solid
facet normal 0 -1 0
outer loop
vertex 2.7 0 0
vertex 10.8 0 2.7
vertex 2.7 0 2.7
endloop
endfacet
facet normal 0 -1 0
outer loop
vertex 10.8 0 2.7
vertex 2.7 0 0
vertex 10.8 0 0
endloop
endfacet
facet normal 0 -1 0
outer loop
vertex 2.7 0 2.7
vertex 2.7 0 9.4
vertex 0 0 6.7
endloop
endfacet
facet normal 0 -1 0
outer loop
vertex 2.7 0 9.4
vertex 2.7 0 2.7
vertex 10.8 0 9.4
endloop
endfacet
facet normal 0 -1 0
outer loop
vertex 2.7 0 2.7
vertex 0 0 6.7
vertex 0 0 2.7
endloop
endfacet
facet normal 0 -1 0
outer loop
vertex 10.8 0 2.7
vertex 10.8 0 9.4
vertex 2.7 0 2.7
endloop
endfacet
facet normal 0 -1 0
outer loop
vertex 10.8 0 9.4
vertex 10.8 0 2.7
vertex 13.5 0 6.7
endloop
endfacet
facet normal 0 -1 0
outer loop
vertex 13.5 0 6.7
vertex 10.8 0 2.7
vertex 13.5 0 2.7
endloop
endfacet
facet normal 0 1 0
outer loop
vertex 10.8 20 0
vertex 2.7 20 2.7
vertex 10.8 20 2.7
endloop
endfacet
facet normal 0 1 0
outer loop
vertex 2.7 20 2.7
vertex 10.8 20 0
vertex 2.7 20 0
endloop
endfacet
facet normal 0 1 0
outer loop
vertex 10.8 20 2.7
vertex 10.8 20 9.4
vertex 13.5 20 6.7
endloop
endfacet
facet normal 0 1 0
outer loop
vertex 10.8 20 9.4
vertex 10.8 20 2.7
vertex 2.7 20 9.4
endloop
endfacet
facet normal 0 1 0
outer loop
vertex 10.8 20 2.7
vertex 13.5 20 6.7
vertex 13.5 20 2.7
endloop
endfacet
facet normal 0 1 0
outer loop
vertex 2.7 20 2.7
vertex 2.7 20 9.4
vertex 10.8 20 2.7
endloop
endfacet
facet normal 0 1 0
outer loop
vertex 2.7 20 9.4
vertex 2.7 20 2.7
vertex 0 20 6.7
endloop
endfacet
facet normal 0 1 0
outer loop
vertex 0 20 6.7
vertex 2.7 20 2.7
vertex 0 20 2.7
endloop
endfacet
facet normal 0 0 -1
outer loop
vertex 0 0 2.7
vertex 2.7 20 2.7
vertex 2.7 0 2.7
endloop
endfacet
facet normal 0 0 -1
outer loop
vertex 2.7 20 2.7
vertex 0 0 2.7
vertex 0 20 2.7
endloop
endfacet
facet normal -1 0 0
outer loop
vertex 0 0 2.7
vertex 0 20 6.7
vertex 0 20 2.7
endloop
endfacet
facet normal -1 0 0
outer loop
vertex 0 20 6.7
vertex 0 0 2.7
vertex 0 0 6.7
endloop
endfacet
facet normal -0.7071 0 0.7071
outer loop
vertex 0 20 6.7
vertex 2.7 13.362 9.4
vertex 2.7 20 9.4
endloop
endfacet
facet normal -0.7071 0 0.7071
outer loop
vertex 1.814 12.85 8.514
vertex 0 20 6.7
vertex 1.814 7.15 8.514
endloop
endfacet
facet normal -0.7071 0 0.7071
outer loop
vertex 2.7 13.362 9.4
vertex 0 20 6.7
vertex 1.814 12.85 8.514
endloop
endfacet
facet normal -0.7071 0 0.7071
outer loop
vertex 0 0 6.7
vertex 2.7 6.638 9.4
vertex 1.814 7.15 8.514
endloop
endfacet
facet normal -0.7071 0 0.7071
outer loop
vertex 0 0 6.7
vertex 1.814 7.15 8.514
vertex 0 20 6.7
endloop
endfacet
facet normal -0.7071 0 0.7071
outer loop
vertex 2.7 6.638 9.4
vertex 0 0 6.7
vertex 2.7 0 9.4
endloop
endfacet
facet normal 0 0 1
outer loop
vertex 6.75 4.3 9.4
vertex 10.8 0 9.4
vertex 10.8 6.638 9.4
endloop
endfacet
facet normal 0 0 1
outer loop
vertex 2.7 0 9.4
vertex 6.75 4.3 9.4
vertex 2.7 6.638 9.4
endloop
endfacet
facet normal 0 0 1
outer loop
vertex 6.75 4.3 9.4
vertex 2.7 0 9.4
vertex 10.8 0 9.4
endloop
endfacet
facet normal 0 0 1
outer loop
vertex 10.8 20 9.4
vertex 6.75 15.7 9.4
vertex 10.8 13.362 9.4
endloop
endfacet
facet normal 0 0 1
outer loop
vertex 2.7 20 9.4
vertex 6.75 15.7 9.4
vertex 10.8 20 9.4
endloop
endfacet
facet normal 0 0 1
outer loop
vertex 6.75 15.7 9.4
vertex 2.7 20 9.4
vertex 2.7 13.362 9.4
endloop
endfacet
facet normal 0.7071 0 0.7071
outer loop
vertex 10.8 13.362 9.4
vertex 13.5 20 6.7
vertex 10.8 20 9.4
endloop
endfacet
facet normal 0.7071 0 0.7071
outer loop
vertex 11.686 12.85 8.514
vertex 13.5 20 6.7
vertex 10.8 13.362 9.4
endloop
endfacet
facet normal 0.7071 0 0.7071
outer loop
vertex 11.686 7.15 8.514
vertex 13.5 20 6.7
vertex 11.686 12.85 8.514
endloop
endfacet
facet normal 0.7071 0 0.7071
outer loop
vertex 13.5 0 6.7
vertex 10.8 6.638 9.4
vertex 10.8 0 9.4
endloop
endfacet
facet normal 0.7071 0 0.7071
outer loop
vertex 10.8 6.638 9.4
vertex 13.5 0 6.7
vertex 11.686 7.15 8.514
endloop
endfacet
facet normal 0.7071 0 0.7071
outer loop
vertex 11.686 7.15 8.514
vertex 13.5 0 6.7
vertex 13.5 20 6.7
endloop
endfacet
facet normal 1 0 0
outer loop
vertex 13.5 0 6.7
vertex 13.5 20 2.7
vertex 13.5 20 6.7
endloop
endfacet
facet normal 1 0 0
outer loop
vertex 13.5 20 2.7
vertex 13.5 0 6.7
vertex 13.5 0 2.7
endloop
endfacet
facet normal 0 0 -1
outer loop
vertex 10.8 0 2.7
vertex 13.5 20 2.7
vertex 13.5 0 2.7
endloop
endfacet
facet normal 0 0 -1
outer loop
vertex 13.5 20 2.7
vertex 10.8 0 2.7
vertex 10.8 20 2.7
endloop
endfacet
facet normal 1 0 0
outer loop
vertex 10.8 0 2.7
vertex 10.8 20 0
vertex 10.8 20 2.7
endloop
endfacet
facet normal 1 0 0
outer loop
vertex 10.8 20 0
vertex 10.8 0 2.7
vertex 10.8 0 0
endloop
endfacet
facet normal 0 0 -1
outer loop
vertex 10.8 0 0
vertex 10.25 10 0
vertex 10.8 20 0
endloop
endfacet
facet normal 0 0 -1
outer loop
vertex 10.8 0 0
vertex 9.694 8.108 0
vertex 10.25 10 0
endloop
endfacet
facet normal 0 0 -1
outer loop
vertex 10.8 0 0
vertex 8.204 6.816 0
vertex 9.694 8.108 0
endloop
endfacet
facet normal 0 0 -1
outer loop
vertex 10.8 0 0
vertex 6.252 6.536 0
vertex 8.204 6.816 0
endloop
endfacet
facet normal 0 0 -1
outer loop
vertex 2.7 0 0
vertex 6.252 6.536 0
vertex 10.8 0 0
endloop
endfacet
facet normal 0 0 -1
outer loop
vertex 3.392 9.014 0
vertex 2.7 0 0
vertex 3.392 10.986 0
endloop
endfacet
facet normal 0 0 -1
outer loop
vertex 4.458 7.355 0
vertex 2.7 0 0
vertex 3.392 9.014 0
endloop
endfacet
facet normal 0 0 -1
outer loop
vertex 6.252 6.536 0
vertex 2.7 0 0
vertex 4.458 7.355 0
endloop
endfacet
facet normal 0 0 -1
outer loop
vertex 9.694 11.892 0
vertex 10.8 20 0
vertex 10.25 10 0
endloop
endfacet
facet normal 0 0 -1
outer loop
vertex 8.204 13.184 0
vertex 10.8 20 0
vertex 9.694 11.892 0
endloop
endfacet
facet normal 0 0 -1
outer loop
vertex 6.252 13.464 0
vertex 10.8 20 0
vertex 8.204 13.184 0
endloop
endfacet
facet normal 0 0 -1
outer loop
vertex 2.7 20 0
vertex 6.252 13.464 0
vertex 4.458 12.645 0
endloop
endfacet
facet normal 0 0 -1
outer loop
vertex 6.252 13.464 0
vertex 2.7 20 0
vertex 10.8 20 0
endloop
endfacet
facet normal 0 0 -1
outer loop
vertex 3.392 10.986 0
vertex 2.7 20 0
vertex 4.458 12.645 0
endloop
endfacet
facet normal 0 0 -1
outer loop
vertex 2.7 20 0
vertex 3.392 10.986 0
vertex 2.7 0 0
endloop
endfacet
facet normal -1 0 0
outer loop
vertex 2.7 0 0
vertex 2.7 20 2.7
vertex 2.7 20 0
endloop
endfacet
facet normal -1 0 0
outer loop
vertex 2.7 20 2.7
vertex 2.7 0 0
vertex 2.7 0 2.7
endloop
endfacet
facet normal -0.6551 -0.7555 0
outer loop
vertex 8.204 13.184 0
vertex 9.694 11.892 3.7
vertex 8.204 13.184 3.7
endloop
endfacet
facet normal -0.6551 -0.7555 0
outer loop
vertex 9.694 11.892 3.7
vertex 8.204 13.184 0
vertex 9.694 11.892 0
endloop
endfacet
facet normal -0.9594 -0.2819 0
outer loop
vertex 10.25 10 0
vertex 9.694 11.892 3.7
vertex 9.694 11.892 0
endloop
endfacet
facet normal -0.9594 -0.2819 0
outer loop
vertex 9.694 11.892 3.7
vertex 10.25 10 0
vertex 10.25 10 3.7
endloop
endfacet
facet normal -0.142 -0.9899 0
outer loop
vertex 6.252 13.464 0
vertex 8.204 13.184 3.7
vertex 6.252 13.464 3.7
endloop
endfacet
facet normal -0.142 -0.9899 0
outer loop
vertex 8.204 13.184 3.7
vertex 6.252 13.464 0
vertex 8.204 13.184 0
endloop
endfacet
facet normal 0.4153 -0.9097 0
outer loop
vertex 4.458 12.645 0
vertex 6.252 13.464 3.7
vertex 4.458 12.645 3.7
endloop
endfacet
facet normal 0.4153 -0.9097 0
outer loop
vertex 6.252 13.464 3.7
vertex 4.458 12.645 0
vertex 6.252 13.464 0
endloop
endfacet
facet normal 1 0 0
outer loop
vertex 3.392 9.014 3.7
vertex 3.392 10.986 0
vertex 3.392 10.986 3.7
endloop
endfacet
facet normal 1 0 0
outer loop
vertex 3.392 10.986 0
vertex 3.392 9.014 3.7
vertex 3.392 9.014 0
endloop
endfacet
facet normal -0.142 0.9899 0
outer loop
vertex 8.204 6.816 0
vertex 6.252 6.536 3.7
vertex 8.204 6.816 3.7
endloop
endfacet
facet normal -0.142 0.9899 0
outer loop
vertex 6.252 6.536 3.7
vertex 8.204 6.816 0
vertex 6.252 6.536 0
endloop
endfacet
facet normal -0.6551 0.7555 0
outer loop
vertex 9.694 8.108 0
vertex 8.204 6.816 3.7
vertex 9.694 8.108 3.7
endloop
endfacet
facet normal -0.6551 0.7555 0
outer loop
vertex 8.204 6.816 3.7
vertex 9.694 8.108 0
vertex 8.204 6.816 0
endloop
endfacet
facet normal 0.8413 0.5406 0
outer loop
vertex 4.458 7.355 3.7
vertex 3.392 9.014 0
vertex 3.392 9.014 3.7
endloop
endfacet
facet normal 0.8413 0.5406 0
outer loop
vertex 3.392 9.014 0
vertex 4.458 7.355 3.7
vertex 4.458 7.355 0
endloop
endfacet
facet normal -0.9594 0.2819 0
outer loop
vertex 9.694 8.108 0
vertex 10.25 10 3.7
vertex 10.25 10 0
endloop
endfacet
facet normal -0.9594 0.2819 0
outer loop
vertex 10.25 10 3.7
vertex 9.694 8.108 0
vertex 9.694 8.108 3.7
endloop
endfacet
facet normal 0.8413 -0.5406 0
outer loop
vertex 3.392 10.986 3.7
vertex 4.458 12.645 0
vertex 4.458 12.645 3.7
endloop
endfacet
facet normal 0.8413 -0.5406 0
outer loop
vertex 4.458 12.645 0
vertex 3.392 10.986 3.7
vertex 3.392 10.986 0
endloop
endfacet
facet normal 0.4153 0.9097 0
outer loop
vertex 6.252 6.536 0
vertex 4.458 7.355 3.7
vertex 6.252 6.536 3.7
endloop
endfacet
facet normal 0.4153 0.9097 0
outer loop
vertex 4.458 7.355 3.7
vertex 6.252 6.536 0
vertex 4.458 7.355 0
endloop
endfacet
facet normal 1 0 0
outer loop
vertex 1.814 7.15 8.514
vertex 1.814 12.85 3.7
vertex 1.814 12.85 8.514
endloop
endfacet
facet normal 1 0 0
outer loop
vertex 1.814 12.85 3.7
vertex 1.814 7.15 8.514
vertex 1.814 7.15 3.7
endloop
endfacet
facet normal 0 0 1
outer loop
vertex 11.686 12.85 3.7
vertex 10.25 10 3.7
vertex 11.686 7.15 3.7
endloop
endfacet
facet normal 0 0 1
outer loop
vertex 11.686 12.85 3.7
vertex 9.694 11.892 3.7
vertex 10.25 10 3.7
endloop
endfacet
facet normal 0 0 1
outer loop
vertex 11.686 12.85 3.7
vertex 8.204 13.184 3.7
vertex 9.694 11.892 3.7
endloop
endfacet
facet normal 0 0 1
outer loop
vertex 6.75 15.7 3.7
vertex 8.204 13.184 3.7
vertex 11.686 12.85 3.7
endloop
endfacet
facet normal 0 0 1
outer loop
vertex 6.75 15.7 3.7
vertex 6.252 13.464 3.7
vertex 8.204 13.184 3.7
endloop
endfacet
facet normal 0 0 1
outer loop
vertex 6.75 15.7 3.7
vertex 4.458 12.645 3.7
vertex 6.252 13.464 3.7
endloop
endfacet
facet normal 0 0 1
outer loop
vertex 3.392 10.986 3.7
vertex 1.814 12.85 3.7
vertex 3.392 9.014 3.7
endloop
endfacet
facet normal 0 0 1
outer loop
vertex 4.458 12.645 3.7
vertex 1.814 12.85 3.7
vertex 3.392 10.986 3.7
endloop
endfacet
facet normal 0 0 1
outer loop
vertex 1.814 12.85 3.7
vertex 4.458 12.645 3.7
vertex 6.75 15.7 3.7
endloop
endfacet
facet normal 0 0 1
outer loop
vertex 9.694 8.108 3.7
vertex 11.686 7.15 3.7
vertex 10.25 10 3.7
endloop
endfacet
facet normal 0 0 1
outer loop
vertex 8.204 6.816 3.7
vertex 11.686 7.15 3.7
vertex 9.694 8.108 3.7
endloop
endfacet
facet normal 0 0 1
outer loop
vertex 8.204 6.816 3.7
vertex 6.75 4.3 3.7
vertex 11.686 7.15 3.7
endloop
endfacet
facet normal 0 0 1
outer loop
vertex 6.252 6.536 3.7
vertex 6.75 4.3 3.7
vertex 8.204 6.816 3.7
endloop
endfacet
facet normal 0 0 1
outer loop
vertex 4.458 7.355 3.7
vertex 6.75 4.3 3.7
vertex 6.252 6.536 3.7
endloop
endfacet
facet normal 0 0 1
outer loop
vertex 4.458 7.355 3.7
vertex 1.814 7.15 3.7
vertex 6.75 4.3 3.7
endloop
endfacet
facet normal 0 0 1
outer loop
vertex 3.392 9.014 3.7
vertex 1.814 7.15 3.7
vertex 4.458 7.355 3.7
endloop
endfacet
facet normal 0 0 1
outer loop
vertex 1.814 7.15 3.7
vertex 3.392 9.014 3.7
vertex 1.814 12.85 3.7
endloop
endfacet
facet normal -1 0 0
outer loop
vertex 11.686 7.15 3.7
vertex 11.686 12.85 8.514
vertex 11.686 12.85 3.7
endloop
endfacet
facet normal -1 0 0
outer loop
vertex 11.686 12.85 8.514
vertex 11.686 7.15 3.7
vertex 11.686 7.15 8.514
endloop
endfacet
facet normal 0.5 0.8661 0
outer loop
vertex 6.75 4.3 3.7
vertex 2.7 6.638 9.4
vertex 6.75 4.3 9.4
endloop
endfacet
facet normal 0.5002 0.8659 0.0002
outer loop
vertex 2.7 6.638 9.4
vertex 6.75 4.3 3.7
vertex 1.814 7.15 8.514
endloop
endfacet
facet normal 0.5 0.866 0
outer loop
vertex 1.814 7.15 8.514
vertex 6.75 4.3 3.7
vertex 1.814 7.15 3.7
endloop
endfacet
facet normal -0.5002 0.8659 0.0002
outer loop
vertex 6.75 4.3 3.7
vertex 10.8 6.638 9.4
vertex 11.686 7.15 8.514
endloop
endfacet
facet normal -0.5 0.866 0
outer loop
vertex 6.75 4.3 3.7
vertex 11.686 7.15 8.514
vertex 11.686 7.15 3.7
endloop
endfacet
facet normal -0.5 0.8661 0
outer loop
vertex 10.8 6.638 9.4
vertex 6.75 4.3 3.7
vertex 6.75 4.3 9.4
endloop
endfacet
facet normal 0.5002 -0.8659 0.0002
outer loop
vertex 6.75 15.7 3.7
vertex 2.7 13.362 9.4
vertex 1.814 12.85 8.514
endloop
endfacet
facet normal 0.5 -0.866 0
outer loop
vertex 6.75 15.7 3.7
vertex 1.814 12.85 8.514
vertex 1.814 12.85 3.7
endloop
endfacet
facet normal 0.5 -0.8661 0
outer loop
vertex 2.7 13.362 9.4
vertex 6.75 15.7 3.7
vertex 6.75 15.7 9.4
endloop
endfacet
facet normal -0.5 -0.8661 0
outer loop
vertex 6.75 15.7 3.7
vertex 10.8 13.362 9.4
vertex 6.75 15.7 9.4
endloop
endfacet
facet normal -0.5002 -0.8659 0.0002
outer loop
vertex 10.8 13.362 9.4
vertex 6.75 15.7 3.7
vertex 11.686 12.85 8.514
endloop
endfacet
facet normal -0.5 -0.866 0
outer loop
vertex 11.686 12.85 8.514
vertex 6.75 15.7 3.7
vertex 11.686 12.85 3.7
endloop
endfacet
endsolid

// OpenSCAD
// file: ../library/screws.scad
module nut($diameter) {
    $fn = 6;
    linear_extrude(height = $diameter+1.1, convexity = 10, twist = 0)
    circle(d = $diameter);
}

module screwHole($diameter, $length = 40) {
    translate([0, 0, -2]) cylinder(h = $length, d = $diameter + 1);
}
// main file
include <../library/screws.scad>

module profile(length = 10) {
    a = 8.1;
    b = 2.7;
    c = b;
    d = 4;
    e = 2.7;
    g = a;
    f = (c+a+c-g)/2;
    

    difference() {
        // stone
        translate([c+a+c, 0, 0])
        rotate([270,180,0])
        linear_extrude(length)
        polygon(
            points = [
                //x,y
                /*    a
                .  0______1
                   |    b | c
                8__9      2__3
                |            | d
                |            |
                7            4
                 \          / e
                  \        /
                   6______5
                         g   f 
                */ 


                 [c, 0], // 0
                 [c+a, 0], // 1
                 [c+a, b], // 2
                 [c+a+c, b], // 3
                 [c+a+c, b+d], // 4
                 [f+g, b+d+e], // 5
                 [f, b+d+e], // 6
                 [0, b+d], // 7
                 [0, b], // 8
                 [c, b], // 9
            ]
        );

        // screw
        translate([(c+a+c)/2, length/2, -7.5]) screwHole(6);
        translate([(c+a+c)/2, length/2, b+1]) rotate([0,0,30]) nut(11.4);
    };
}

profile(20);
